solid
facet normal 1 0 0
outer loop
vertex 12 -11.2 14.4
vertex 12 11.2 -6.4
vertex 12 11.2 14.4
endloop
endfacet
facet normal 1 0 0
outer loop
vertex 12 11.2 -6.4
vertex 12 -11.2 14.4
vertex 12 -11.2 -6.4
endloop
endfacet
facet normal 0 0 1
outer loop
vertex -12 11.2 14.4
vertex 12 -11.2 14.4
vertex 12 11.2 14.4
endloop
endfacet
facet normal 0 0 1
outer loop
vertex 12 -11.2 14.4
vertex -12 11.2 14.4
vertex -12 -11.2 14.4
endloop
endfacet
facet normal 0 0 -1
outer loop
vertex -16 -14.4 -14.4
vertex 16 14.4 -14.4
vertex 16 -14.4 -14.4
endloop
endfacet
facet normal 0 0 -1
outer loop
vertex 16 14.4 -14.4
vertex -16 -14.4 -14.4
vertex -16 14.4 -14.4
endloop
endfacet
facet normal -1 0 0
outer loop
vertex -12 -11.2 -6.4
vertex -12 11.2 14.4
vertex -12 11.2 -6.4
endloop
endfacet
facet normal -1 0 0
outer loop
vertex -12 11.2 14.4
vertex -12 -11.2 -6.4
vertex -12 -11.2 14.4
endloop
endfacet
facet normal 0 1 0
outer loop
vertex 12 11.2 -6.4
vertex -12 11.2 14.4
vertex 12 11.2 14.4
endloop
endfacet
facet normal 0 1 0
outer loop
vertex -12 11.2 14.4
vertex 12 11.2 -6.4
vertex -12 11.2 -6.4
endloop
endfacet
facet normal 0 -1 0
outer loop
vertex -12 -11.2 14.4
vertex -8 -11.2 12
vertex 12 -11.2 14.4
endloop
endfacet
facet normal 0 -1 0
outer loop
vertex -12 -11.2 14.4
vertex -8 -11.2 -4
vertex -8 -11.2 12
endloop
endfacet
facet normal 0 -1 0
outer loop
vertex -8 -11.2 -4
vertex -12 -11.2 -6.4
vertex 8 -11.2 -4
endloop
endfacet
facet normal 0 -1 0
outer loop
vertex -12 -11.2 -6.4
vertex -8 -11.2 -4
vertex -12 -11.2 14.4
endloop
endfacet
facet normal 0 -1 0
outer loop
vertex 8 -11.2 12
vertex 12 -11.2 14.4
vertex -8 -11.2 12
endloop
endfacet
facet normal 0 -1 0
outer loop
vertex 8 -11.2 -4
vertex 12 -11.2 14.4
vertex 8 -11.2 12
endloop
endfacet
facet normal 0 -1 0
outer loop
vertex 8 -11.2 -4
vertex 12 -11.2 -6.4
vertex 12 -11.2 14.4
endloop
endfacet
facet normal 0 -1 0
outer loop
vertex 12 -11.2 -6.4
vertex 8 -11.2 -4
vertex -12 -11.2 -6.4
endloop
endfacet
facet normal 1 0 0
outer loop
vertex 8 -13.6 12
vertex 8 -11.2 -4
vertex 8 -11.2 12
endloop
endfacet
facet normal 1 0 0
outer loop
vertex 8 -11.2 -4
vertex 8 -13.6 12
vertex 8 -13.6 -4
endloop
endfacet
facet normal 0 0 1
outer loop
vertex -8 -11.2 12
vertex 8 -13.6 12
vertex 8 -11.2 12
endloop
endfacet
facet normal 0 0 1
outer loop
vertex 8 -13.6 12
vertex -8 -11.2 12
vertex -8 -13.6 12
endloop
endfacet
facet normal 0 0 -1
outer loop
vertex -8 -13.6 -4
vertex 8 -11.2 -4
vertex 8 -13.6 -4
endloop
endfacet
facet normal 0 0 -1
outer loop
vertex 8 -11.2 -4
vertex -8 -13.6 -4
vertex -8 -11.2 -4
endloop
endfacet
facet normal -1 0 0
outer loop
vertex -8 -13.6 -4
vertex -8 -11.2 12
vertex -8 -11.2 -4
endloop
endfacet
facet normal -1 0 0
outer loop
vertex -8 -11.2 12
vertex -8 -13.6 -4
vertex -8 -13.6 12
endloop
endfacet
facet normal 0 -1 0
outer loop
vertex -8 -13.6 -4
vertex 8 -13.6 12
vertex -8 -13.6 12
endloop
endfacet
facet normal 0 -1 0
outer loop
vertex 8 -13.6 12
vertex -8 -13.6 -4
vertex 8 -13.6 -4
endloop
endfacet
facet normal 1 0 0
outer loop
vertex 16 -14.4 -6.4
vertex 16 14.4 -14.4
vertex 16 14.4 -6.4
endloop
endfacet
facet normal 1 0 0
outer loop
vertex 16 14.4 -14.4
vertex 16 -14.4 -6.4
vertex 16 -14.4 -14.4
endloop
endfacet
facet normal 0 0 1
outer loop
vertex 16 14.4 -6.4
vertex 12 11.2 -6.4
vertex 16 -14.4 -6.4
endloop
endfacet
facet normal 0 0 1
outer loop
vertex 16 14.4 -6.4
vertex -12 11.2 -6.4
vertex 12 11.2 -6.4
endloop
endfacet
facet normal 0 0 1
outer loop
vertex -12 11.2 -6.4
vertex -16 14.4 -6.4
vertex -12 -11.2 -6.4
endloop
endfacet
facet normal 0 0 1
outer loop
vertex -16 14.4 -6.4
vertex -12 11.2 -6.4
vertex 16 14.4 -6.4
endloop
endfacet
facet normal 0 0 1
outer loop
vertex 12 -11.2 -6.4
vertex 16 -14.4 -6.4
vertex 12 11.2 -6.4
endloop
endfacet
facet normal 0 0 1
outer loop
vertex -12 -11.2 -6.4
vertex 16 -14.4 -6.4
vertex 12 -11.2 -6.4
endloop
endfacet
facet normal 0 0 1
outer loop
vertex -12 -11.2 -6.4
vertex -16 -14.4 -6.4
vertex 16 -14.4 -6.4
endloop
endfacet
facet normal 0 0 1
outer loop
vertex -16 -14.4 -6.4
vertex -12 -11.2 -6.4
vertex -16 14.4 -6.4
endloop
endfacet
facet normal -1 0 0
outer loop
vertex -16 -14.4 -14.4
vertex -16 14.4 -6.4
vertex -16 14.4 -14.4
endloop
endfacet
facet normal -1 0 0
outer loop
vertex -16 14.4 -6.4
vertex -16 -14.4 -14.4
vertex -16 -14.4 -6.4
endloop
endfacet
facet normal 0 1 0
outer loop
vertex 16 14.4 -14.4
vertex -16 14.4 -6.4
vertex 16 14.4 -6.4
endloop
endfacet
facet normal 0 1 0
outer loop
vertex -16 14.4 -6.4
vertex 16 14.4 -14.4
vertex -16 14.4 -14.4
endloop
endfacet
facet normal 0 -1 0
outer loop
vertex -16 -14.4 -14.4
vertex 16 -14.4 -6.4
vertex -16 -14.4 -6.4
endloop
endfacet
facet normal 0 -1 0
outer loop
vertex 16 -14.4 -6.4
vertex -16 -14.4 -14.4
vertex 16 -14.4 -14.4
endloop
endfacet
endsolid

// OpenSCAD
size=32; //block=32 //item=8

translate([0,0,size*0.05]){	//centering

translate([0,0,-size*0.05]){
cube([size*0.75,size*0.7,size*0.9],center=true);	//case
};	//translate
translate([0,-size*0.35,size*0.075]){
cube([size*0.5,size*0.15,size*0.5],center=true);	//frontPanel
};	//translate
translate([0,0,-size*0.375]){
cube([size*1,size*0.9,size*0.25],center=true);	//base
};	//translate

};	//translate
